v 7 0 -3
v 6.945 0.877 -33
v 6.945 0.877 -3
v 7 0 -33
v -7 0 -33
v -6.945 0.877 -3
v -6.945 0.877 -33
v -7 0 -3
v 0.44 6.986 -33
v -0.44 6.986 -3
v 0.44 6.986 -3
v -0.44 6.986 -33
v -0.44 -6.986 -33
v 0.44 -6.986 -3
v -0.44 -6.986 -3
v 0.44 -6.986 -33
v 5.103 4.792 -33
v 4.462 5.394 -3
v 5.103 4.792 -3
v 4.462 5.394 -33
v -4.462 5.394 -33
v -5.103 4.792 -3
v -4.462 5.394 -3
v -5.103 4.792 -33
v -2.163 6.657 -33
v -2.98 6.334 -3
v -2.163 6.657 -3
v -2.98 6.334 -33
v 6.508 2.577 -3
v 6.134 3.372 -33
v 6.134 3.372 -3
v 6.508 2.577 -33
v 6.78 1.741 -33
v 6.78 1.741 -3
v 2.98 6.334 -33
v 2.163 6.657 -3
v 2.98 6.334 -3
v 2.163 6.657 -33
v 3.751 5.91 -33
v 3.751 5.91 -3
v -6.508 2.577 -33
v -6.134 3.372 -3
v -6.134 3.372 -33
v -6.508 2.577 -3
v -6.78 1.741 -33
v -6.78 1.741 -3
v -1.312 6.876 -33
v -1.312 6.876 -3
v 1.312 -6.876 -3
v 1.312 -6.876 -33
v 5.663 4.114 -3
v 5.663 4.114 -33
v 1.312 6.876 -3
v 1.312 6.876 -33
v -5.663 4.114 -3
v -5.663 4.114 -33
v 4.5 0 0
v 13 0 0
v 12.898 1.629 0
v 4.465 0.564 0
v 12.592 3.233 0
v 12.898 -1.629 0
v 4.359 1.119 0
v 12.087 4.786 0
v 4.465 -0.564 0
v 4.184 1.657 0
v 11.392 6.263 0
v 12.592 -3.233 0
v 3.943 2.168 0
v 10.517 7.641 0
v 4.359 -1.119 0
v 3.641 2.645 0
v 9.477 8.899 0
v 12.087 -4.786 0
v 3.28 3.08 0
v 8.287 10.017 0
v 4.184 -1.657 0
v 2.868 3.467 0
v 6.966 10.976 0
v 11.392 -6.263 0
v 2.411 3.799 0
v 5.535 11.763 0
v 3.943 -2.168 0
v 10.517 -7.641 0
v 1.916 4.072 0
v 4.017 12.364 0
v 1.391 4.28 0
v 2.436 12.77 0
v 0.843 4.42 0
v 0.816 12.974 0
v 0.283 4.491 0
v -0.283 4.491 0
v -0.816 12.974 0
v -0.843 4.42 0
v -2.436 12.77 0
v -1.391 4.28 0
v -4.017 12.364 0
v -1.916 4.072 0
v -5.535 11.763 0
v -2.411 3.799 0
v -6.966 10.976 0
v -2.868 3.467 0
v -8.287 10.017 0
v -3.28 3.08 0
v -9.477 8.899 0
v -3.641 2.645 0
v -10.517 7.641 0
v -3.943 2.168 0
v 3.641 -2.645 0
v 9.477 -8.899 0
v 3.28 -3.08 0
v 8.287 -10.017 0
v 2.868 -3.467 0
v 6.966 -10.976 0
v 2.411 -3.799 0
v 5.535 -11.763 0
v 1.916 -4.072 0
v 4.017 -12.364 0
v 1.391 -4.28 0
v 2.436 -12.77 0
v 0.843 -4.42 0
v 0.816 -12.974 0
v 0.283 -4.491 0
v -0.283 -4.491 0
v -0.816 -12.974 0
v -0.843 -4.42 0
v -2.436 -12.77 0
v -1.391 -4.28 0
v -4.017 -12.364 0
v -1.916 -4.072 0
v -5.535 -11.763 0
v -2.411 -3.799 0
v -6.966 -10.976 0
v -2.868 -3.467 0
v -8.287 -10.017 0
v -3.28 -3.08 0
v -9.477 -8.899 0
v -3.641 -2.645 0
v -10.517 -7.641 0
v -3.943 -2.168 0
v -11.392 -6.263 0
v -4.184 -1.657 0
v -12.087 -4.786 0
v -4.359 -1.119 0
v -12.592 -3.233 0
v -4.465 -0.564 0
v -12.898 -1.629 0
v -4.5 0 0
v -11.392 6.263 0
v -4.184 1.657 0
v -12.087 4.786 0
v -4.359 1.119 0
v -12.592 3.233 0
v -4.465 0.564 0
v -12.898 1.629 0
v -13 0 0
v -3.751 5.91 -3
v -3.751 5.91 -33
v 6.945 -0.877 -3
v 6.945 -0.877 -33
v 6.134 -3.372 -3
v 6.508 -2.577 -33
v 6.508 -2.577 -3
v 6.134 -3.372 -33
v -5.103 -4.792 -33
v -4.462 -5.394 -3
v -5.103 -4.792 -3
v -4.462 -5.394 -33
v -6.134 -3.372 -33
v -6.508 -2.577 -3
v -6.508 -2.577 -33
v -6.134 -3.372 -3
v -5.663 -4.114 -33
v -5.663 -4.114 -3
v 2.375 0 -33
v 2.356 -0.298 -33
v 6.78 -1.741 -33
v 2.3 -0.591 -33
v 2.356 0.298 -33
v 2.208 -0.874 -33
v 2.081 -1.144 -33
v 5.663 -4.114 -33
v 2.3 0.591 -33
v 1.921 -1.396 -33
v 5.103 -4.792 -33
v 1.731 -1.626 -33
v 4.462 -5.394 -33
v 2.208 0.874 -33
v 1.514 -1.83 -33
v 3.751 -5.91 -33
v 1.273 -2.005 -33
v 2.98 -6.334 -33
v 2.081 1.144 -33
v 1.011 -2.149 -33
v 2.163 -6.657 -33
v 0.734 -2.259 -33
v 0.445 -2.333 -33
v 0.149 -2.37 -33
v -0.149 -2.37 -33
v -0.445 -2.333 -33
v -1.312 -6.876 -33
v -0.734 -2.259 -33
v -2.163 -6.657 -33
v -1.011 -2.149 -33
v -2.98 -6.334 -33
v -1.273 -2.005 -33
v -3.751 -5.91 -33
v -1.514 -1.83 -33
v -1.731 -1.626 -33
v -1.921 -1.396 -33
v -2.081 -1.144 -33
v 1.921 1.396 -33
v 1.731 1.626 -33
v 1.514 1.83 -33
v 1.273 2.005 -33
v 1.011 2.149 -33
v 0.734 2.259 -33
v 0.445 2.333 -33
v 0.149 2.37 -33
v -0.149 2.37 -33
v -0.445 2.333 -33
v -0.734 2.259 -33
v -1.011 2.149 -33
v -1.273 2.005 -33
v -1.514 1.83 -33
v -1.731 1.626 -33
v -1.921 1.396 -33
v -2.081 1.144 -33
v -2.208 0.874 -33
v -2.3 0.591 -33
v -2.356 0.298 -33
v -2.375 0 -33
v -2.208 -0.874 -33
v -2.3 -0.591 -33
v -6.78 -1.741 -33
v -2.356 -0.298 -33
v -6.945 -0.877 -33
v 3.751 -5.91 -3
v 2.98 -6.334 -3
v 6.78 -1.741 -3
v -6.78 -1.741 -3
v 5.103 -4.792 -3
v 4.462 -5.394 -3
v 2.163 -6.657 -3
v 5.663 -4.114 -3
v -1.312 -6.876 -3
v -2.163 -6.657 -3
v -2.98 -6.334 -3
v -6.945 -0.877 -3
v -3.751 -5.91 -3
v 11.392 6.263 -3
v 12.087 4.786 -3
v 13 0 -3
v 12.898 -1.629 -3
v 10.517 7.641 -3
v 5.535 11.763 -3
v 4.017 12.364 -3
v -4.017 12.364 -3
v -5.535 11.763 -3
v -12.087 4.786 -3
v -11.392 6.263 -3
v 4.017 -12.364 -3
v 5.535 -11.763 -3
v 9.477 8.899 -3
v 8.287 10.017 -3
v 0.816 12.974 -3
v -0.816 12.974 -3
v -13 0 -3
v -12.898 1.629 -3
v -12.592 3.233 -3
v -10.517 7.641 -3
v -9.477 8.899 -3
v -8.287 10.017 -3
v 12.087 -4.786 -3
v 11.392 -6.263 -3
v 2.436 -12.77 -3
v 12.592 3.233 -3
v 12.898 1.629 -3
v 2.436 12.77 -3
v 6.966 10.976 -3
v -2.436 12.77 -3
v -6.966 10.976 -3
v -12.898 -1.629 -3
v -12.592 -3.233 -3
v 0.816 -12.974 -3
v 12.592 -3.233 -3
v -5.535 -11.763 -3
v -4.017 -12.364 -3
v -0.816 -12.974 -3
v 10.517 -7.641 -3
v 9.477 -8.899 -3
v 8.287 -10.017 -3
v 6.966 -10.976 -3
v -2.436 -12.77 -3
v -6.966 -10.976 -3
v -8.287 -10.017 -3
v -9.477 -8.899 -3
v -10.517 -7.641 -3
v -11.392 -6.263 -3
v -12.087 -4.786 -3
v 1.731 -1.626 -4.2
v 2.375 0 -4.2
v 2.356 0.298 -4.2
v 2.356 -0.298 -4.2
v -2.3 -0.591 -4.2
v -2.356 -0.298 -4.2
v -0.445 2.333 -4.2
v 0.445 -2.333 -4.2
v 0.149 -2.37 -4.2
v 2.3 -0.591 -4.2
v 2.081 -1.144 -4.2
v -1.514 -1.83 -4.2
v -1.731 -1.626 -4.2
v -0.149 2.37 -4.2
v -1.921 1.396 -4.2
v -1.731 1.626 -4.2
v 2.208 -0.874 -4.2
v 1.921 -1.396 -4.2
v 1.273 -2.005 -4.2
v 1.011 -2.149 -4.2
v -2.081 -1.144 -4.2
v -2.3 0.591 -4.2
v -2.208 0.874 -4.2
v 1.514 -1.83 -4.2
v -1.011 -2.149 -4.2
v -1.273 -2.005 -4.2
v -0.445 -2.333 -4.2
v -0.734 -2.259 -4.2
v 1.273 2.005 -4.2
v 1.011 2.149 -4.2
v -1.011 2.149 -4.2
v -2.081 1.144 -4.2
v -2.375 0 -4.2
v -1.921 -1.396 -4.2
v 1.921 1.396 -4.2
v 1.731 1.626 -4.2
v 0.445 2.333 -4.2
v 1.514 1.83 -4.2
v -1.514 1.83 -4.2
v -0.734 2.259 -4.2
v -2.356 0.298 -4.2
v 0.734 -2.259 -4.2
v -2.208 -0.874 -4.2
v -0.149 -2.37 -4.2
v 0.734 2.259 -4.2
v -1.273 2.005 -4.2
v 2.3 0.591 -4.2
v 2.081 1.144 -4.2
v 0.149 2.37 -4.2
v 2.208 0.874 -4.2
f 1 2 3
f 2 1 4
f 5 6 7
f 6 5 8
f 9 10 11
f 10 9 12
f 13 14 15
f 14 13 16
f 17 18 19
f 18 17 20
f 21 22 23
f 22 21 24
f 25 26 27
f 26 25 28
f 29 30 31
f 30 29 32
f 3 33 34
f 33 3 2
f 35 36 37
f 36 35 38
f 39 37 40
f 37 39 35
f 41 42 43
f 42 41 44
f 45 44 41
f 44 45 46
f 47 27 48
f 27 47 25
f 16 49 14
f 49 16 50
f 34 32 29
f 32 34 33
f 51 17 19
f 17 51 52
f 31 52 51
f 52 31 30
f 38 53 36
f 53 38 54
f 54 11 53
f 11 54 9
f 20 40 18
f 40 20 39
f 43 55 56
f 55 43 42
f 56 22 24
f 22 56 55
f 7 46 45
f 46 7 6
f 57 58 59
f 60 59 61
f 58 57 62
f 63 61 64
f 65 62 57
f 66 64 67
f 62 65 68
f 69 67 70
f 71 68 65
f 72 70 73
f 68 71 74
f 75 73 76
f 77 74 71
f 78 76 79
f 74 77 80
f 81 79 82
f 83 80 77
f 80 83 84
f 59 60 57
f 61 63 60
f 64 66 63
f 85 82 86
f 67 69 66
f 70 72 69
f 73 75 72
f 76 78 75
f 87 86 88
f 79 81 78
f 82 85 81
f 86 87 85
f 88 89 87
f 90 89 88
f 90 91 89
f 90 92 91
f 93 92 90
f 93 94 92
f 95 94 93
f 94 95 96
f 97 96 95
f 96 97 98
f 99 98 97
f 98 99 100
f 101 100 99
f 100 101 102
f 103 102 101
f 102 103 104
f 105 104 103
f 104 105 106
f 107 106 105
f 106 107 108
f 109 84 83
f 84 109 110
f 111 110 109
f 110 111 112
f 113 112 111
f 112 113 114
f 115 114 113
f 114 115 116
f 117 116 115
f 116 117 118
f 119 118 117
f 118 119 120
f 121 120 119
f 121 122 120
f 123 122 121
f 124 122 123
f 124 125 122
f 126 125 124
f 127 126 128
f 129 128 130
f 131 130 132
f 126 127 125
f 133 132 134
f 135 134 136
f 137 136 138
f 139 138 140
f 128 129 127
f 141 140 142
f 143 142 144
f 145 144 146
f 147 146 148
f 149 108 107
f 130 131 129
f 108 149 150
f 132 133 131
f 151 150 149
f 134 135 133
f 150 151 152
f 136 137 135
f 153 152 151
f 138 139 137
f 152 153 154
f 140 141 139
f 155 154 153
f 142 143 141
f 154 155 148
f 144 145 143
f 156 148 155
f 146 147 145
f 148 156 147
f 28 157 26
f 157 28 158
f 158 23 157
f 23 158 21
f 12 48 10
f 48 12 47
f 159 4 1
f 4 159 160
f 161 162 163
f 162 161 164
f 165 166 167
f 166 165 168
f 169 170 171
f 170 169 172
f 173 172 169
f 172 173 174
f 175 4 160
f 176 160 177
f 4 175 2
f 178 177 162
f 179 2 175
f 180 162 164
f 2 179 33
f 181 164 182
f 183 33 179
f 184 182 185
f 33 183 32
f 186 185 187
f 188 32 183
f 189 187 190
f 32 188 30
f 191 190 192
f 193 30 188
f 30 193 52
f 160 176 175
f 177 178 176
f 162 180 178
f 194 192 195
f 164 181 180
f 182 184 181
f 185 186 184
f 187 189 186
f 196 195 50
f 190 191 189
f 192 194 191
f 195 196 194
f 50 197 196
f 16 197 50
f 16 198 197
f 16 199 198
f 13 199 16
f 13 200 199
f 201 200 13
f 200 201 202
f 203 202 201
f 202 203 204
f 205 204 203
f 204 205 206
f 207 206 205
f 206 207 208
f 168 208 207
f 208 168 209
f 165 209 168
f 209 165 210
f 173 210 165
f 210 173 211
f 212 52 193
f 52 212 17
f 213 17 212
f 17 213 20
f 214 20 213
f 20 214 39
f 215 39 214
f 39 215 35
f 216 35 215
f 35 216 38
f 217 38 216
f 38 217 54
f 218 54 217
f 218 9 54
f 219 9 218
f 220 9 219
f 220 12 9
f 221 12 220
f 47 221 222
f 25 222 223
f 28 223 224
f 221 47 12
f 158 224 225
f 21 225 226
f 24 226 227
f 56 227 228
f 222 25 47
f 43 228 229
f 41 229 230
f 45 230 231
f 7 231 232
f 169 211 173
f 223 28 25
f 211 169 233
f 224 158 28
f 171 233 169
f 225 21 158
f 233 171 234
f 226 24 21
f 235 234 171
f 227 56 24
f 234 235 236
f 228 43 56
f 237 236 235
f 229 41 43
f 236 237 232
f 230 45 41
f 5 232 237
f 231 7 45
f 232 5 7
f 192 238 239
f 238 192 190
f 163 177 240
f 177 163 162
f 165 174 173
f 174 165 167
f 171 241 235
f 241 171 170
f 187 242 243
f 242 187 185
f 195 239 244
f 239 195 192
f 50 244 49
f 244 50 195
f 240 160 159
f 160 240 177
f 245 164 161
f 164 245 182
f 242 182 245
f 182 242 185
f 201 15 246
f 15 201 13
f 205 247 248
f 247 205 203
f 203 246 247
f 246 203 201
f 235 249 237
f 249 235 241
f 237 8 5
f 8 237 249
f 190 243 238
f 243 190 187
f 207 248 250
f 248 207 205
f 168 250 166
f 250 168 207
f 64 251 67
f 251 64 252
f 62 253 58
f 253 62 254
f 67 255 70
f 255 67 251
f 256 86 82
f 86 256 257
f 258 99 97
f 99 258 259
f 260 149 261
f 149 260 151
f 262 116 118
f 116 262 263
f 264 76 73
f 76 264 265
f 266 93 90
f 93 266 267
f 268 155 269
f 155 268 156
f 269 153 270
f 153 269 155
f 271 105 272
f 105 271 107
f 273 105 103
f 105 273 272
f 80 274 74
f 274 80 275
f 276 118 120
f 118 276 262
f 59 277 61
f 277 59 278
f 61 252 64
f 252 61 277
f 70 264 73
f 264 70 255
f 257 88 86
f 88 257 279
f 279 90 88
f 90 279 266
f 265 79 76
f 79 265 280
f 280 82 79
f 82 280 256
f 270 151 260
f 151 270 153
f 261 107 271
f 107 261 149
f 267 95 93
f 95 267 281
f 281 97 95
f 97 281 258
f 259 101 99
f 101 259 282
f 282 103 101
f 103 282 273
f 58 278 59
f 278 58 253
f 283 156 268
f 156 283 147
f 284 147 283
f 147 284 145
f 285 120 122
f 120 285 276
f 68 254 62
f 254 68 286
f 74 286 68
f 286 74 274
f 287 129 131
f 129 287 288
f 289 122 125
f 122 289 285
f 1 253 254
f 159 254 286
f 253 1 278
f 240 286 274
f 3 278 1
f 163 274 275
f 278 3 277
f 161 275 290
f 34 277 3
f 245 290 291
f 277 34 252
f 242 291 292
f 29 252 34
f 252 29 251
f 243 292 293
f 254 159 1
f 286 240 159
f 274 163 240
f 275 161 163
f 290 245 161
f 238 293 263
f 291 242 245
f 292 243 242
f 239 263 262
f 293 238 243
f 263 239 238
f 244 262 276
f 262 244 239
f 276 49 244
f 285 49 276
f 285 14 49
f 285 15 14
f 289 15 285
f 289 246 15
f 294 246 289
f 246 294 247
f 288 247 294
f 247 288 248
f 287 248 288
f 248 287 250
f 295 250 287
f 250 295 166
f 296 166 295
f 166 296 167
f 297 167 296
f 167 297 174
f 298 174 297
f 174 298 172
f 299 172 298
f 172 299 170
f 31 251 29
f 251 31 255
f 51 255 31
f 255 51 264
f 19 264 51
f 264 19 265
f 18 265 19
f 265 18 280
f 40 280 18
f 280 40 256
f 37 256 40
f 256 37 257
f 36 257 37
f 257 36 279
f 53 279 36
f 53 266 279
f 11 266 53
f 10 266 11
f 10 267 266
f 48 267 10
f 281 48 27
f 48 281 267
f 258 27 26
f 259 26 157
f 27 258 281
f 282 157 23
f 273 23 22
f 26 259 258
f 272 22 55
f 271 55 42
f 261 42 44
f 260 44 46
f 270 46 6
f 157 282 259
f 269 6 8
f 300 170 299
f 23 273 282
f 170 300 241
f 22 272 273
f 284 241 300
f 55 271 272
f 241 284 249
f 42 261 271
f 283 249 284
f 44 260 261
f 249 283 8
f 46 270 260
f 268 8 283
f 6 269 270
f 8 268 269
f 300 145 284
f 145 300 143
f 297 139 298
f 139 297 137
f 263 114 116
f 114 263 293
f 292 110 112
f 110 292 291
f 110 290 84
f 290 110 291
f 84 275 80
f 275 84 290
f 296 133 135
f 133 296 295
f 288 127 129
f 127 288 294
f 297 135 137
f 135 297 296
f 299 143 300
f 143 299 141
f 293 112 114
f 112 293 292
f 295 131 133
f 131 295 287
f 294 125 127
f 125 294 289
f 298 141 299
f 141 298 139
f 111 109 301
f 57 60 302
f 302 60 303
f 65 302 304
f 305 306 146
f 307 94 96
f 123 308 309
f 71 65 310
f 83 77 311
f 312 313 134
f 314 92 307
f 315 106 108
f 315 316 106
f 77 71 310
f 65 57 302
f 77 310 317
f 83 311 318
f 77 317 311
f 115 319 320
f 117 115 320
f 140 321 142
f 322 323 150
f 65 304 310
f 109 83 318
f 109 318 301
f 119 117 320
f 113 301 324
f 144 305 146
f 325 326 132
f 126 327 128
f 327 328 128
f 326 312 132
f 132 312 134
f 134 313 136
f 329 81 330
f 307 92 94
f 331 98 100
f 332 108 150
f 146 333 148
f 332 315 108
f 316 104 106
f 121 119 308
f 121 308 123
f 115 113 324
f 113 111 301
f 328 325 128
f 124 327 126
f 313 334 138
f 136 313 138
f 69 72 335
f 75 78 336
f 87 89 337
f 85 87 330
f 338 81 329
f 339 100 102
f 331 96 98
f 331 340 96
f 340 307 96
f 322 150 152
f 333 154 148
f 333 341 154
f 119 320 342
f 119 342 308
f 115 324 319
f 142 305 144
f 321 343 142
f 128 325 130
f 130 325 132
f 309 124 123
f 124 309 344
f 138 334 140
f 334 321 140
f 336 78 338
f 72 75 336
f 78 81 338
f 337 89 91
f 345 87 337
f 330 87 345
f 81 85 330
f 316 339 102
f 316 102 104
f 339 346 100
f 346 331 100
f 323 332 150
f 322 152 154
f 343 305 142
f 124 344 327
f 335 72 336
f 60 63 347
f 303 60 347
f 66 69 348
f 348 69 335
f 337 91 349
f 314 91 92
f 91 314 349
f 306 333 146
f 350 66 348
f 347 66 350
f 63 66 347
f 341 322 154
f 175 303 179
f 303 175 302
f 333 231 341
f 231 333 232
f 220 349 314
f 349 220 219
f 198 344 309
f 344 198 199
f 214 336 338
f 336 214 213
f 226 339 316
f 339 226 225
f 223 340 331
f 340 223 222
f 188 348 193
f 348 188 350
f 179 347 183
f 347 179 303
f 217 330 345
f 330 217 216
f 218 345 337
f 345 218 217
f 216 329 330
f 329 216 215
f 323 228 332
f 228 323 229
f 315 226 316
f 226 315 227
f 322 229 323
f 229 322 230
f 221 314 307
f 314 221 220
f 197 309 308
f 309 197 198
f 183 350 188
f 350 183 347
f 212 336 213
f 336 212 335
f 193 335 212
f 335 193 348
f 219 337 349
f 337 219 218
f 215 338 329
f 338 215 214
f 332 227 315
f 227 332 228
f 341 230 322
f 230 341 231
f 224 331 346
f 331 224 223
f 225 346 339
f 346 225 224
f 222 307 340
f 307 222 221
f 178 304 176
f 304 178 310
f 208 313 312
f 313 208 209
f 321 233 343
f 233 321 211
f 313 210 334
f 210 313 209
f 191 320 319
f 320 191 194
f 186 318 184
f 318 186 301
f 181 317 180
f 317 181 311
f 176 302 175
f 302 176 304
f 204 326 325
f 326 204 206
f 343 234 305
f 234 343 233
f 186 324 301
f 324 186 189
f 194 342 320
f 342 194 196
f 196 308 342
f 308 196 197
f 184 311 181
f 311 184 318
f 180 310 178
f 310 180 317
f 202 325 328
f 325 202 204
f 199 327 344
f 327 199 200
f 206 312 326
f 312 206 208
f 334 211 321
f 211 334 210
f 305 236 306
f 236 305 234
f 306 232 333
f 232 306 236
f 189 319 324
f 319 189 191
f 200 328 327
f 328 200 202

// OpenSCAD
$fn = 50;


difference() {
	union() {
		translate(v = [0, 0, -33.0000000000]) {
			cylinder(h = 33, r = 7.0000000000);
		}
		translate(v = [0, 0, -3.0000000000]) {
			cylinder(h = 3, r = 13.0000000000);
		}
	}
	union() {
		translate(v = [0, 0, 0]) {
			rotate(a = [0, 0, 0]) {
				difference() {
					union() {
						#translate(v = [0, 0, -33.0000000000]) {
							cylinder(h = 33, r = 2.2500000000);
						}
						#translate(v = [0, 0, -4.2000000000]) {
							cylinder(h = 4.2000000000, r = 7.0000000000, r1 = 2.3750000000, r2 = 4.5000000000);
						}
						#translate(v = [0, 0, -33.0000000000]) {
							cylinder(h = 33, r = 2.3750000000);
						}
						#translate(v = [0, 0, -33.0000000000]) {
							cylinder(h = 33, r = 2.2500000000);
						}
					}
					union();
				}
			}
		}
	}
}
